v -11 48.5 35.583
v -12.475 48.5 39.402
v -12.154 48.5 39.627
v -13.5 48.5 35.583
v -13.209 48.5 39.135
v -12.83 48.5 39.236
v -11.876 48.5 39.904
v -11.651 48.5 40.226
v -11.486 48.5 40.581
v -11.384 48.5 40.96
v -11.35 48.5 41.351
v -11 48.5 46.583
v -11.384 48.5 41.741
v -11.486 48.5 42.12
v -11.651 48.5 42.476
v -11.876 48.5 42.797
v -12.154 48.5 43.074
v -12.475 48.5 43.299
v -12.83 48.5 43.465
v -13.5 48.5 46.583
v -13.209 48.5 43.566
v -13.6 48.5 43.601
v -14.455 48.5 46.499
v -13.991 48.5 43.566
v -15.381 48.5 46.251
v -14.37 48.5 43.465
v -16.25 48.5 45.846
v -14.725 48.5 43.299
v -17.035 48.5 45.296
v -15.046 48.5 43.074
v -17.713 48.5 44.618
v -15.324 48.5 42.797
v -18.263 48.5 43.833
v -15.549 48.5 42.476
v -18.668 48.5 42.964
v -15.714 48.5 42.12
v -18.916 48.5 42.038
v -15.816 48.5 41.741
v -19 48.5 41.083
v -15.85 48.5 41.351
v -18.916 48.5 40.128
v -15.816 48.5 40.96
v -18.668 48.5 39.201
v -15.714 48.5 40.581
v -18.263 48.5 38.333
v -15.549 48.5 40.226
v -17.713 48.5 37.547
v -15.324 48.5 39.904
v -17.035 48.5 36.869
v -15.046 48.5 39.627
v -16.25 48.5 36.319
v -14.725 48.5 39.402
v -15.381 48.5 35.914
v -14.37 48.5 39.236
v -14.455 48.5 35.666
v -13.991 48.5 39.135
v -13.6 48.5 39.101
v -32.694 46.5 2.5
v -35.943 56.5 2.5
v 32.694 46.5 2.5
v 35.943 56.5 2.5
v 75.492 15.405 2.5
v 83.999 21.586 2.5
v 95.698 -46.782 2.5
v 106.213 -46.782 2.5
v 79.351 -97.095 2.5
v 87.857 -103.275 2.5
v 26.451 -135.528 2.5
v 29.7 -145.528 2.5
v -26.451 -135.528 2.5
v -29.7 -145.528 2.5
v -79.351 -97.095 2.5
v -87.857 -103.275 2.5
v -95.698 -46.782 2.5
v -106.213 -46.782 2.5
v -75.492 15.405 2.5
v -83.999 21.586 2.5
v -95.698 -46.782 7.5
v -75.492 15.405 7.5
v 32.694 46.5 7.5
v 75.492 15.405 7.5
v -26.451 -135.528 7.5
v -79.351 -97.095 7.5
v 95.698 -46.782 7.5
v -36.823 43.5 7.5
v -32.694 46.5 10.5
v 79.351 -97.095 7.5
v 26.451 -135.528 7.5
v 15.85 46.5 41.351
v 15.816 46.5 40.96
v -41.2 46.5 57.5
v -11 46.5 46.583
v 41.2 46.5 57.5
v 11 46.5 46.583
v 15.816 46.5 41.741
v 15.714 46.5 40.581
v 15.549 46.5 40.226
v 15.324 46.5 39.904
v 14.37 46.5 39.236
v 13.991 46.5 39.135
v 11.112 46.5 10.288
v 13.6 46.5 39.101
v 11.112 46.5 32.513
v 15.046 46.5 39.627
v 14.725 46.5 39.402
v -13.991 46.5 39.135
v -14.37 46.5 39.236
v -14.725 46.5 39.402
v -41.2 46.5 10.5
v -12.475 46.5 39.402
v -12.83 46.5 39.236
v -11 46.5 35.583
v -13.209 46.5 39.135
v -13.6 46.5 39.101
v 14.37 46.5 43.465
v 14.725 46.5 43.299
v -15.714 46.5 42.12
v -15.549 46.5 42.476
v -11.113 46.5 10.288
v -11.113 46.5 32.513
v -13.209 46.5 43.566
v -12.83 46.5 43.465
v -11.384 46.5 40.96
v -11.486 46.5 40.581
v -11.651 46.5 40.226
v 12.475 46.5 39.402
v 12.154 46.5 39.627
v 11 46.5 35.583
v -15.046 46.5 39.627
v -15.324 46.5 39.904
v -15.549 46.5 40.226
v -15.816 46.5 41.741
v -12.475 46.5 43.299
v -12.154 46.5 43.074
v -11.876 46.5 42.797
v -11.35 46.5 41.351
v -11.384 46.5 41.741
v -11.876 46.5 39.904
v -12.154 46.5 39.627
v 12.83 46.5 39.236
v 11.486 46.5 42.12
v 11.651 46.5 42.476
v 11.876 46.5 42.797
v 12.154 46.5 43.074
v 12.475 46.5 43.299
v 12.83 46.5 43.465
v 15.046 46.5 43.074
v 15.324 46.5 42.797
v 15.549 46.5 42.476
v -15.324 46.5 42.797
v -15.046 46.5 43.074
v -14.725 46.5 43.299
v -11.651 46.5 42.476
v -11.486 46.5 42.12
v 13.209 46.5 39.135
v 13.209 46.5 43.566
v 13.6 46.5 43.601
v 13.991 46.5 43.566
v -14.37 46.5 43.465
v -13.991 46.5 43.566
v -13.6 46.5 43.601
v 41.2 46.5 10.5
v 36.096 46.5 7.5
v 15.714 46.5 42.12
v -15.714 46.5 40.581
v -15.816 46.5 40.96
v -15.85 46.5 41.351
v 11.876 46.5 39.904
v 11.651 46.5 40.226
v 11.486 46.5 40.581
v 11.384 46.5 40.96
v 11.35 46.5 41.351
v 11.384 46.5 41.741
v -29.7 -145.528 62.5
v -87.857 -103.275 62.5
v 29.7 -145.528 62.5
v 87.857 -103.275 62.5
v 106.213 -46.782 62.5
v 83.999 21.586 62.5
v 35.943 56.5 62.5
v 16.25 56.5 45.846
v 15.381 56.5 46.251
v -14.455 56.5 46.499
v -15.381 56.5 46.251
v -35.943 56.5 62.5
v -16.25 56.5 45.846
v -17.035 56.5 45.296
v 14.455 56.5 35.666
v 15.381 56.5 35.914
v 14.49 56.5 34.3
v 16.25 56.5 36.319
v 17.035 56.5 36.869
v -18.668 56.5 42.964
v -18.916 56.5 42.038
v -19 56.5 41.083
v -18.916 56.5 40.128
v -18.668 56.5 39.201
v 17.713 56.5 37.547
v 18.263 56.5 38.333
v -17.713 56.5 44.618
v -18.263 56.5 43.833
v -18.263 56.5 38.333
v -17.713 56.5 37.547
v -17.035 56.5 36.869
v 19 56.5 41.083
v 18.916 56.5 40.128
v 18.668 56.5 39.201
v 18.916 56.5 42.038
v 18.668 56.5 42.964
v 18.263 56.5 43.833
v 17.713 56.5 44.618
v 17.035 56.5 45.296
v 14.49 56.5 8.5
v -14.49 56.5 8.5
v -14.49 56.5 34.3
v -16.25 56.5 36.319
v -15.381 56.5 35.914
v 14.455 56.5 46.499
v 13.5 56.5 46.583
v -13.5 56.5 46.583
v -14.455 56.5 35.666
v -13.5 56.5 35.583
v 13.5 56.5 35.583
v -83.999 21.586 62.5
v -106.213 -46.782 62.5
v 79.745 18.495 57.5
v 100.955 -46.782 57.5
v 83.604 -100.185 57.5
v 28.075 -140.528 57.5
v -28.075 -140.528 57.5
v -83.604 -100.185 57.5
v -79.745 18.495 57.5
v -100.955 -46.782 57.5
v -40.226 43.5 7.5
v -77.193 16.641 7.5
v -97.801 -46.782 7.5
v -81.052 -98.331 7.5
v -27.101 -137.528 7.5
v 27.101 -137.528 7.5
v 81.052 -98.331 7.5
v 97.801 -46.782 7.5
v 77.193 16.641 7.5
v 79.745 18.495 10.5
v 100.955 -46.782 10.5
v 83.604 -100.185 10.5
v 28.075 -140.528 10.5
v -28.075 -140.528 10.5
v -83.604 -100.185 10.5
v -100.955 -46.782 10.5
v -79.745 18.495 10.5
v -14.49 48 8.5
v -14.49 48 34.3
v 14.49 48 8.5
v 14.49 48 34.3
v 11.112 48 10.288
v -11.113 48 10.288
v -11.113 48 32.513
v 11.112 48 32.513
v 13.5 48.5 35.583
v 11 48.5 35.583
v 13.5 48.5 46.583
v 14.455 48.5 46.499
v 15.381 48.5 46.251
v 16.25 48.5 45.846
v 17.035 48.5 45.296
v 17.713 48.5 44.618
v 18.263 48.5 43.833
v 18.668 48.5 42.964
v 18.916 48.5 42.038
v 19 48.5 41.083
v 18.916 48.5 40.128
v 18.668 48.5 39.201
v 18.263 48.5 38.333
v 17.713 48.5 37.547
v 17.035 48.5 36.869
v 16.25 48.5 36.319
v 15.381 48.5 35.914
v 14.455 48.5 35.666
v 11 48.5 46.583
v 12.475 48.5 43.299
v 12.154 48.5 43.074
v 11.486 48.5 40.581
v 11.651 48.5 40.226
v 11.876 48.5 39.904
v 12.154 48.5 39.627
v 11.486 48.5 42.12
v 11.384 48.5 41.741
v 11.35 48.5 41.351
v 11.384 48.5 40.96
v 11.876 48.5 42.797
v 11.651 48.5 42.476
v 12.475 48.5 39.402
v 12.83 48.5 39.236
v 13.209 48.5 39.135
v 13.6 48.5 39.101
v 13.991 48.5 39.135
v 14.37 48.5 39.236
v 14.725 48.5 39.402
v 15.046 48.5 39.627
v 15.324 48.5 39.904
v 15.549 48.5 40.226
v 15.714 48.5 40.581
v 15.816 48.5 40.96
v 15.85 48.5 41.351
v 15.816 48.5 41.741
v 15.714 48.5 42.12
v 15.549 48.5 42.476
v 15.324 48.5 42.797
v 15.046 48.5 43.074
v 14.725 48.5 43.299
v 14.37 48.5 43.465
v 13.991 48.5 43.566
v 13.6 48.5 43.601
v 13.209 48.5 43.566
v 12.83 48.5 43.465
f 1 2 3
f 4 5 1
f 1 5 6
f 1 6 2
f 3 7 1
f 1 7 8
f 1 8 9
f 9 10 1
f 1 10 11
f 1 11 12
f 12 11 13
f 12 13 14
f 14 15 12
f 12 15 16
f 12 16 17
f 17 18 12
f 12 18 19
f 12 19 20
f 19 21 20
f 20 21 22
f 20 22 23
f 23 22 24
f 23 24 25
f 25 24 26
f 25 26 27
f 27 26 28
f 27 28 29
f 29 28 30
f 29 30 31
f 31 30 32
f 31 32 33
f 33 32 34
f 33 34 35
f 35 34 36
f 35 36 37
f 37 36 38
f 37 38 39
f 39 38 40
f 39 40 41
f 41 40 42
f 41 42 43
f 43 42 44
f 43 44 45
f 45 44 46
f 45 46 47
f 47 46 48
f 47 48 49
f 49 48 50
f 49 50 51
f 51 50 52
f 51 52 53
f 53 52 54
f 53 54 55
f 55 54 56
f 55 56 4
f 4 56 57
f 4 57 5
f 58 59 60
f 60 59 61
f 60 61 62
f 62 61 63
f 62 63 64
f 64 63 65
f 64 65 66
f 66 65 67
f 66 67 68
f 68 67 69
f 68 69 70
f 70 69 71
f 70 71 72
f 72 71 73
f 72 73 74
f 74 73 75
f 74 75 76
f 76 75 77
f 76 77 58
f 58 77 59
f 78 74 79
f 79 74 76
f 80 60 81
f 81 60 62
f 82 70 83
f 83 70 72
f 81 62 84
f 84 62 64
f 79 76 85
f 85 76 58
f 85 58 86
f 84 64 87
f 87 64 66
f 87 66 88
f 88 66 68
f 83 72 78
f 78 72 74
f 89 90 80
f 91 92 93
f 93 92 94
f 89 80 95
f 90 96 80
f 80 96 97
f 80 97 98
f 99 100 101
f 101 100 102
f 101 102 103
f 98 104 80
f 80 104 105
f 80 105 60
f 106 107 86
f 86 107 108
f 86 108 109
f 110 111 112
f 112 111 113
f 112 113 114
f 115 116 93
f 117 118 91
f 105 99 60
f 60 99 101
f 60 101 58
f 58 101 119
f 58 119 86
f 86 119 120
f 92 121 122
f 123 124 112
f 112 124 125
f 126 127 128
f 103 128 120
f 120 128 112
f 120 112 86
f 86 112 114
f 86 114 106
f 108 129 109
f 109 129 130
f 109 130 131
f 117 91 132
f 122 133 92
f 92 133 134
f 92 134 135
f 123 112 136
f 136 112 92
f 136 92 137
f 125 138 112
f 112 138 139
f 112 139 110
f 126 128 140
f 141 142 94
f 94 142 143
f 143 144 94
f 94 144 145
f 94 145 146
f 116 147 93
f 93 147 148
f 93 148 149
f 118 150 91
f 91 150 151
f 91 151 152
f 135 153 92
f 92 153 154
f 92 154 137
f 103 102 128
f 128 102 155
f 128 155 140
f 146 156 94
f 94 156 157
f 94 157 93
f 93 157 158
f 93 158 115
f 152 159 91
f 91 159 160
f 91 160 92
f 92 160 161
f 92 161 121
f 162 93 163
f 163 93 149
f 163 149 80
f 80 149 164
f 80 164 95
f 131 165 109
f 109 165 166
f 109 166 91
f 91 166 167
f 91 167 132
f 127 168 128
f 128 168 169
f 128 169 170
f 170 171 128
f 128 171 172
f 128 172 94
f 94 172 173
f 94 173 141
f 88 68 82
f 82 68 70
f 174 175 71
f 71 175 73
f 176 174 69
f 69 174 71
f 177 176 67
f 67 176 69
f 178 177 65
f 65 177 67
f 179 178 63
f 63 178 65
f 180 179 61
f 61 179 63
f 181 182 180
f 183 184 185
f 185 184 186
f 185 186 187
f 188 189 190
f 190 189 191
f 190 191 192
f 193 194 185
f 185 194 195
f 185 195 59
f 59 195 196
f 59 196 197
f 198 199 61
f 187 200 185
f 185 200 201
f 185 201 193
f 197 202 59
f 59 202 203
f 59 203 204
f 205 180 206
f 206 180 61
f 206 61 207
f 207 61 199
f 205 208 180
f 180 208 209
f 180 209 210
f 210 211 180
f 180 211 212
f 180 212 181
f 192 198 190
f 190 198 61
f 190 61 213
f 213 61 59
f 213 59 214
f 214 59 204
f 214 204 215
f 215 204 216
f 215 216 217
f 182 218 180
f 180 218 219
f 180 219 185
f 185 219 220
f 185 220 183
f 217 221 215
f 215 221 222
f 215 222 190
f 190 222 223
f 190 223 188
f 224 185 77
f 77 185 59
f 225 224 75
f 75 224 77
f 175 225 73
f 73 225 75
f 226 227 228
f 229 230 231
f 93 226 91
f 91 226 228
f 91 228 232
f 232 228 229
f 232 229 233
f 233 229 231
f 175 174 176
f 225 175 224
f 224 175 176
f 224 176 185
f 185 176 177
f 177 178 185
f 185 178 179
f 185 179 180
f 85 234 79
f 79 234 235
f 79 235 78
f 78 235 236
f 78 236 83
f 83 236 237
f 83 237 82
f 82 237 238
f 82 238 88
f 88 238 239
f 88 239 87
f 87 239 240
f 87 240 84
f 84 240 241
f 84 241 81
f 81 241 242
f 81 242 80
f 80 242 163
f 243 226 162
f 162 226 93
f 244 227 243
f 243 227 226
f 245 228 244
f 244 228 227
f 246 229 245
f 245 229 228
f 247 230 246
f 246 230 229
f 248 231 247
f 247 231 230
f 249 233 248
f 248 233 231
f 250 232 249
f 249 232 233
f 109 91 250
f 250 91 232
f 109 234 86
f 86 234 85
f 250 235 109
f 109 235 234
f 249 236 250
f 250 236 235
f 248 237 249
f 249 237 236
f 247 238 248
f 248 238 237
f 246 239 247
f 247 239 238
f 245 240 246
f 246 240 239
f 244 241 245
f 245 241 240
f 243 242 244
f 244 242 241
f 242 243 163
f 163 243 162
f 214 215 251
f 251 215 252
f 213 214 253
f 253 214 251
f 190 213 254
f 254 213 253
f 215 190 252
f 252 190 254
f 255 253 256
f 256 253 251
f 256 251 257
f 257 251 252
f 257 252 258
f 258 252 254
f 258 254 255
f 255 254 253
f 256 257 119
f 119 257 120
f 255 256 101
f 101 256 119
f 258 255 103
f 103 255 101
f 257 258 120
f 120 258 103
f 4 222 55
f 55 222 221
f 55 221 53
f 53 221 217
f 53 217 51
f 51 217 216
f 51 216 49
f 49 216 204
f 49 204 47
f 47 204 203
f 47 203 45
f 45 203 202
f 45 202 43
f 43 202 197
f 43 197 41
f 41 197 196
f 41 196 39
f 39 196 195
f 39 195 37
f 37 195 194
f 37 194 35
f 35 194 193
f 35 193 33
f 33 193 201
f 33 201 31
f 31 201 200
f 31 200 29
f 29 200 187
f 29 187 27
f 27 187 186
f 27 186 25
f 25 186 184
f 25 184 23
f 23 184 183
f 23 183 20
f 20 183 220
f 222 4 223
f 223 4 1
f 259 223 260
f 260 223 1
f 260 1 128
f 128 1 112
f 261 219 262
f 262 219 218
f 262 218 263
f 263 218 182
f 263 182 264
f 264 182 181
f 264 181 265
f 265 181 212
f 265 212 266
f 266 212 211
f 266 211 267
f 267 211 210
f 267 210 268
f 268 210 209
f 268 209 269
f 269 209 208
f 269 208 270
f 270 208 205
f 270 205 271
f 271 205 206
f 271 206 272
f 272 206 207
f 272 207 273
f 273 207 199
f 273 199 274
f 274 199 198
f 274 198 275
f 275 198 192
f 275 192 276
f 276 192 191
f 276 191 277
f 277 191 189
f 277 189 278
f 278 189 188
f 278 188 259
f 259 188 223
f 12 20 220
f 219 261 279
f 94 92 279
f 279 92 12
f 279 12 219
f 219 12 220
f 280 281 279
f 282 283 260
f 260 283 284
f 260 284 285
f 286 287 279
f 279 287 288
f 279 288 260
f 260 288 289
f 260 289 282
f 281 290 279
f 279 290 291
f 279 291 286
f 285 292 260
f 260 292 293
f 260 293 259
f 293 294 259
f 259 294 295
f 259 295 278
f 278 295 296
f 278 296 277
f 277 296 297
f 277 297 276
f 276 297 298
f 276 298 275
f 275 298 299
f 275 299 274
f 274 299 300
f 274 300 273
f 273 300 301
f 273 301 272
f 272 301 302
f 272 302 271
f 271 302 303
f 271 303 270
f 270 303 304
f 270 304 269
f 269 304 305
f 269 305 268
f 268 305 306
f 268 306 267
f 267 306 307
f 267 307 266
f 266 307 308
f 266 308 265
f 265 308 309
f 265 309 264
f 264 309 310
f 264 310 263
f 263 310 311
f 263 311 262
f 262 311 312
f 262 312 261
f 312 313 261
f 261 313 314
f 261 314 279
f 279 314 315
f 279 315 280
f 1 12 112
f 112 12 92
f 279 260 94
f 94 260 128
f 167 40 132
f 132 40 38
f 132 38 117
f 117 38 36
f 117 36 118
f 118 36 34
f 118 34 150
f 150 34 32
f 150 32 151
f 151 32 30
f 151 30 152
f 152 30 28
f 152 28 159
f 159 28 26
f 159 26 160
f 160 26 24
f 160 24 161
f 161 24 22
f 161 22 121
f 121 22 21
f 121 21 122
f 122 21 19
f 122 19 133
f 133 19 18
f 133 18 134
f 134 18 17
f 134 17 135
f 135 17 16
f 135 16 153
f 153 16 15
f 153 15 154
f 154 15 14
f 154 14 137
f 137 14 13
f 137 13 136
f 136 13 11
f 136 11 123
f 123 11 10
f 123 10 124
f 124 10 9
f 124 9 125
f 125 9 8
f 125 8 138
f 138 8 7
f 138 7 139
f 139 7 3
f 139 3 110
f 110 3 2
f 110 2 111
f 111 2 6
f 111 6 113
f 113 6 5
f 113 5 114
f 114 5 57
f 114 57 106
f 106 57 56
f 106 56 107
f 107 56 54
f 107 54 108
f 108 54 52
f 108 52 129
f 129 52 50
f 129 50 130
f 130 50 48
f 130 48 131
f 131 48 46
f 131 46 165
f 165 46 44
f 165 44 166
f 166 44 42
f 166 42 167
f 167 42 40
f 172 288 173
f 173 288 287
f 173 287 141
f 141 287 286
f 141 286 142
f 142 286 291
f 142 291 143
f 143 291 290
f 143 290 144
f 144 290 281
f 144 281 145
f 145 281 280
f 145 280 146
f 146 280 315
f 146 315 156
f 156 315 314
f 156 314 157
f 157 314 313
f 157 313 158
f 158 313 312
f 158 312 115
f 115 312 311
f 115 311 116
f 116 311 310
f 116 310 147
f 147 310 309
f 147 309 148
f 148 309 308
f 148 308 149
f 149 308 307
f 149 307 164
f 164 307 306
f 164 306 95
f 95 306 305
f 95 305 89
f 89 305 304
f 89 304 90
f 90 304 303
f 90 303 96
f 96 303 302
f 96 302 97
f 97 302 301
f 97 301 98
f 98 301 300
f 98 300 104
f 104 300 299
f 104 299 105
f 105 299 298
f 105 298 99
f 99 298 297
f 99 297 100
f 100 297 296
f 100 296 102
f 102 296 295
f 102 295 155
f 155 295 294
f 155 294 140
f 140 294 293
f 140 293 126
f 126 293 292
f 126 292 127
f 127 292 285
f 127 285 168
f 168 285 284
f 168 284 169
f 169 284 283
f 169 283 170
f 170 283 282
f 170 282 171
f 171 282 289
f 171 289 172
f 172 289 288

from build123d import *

# Parameters (mm, degrees)
BOSS_EXTRUDE1_DEPTH      = 32.5
SKETCH4_R                = 1.05
BOSS_EXTRUDE2_DEPTH      = 2.5
SKETCH5_R                = 1.05
BOSS_EXTRUDE3_DEPTH      = 3
CUT_EXTRUDE1_DEPTH       = 57.494113711
SKETCH13_W               = 30.122
SKETCH13_H               = 38
BOSS_EXTRUDE7_DEPTH      = 2.5
BOSS_EXTRUDE4_DEPTH      = 5
BOSS_EXTRUDE6_DEPTH      = 5
CUT_EXTRUDE2_DEPTH       = 88.339560135
SKETCH14_W               = 15
SKETCH14_H               = 5
CUT_EXTRUDE3_DEPTH       = 78.191649756
SKETCH15_W               = 30.122
SKETCH15_H               = 34.5
SKETCH15_R               = 2.495
BOSS_EXTRUDE8_DEPTH      = 3
SKETCH17_R               = 13.75
CUT_EXTRUDE4_DEPTH       = 82.57236537
CUT_EXTRUDE6_DEPTH       = 78.191649756
CUT_EXTRUDE6_DEPTH_BACK  = 78.191649756
SKETCH19_W               = 15
SKETCH19_H               = 3
SKETCH21_R               = 2.25
CUT_EXTRUDE8_DEPTH       = 1.5
SKETCH20_R               = 10
CUT_EXTRUDE7_DEPTH       = 80.23730682
CIRPATTERN2_COUNT        = 5
CHAMFER1_SIZE2           = 2
CHAMFER1_SIZE            = 1.154700538
SKETCH22_R               = 1.575
CUT_EXTRUDE9_DEPTH       = 170.45894052
SKETCH23_R               = 2.6
CUT_EXTRUDE10_DEPTH      = 3
CIRPATTERN3_COUNT        = 5
BOSS_EXTRUDE9_DEPTH      = 55
CUT_EXTRUDE11_DEPTH      = 187.975043137
CUT_EXTRUDE11_DEPTH_BACK = 187.975043137
BOSS_EXTRUDE10_DEPTH     = 5
CUT_EXTRUDE12_DEPTH      = 50
CHAMFER2_SIZE            = 3
SKETCH30_W               = 28.98
SKETCH30_H               = 25.8
CUT_EXTRUDE15_DEPTH      = 8.5
CUT_EXTRUDE16_REACH      = 231.436
SKETCH33_W               = 22.225
SKETCH33_H               = 22.225
CUT_EXTRUDE14_DEPTH      = 8
CUT_EXTRUDE17_REACH      = 231.857
SKETCH34_R               = 2.25
SKETCH34_W               = 22
SKETCH34_H               = 11


with BuildPart() as part:
    # Sketch2 → Boss-Extrude1 (new body)
    with BuildSketch(Plane(origin=(0, 0, 0), x_dir=(1, 0, 0), z_dir=(0, 1, 0))):
        Polygon((15.061, 0), (15.061, 32), (12.561, 32), (12.561, 2.5), (-12.561, 2.5), (-12.561, 32), (-15.061, 32), (-15.061, 0), align=None)
    extrude(amount=BOSS_EXTRUDE1_DEPTH)

    # Sketch4 → Boss-Extrude2 (add)
    # profile 1 of 2: a face of its own
    with BuildSketch(Plane.XZ):
        Polygon((-7.561, -6), (-7.561, 0), (-15.061, 0), (-15.061, -32), (-12.561, -32), (-12.561, -10), align=None)
        with Locations(Location((-10.2499, -4.95, 0), (0, 0, 270))):
            Circle(SKETCH4_R, mode=Mode.SUBTRACT)
    # profile 2 of 2: a face of its own
    with BuildSketch(Plane.XZ):
        Polygon((12.561, -10), (7.561, -6), (7.561, 0), (15.061, 0), (15.061, -32), (12.561, -32), align=None)
        with Locations(Location((10.2499, -4.95, 0), (0, 0, 270))):
            Circle(SKETCH4_R, mode=Mode.SUBTRACT)
    extrude(amount=BOSS_EXTRUDE2_DEPTH)

    # Sketch5 → Boss-Extrude3 (add)
    with BuildSketch(Plane(origin=(0, 32.5, 0), x_dir=(1, 0, 0), z_dir=(0, 1, 0))):
        Polygon((-15.061, 32), (-10.2499, 32), (-6.25, 26), (6.25, 26), (10.2499, 32), (15.061, 32), (15.061, 0), (-15.061, 0), align=None)
        with Locations(Location((-10.2499, 8.7, 0), (0, 0, 270))):
            Circle(SKETCH5_R, mode=Mode.SUBTRACT)
        with Locations(Location((10.2499, 8.7, 0), (0, 0, 270))):
            Circle(SKETCH5_R, mode=Mode.SUBTRACT)
    extrude(amount=BOSS_EXTRUDE3_DEPTH)

    # Sketch6 → Cut-Extrude1 (cut, through all)
    with BuildSketch(Plane.ZY.offset(15.061)):
        Polygon((-12.5, 35.5), (-32, 2.5), (-32, 35.5), align=None)
    extrude(amount=-CUT_EXTRUDE1_DEPTH, mode=Mode.SUBTRACT)

    # Sketch13 → Boss-Extrude7 (add)
    with BuildSketch(Plane.XY):
        with Locations((0, 16.5)):
            Rectangle(SKETCH13_W, SKETCH13_H)
    extrude(amount=BOSS_EXTRUDE7_DEPTH)

    # Sketch8 → Boss-Extrude4 (add)
    with BuildSketch(Plane.XY.offset(2.5)):
        Polygon((0, -43.5), (-43.59255168, 16.5), (43.59255168, 16.5), align=None)
    extrude(amount=BOSS_EXTRUDE4_DEPTH)

    # Sketch9 → Boss-Extrude6 (add)
    with BuildSketch(Plane.XY.offset(2.5)):
        Polygon((43.59255168, 16.5), (65.38882752, 46.5), (-65.38882752, 46.5), (-43.59255168, 16.5), align=None)
    extrude(amount=BOSS_EXTRUDE6_DEPTH)

    # Sketch10 → Cut-Extrude2 (cut, through all)
    with BuildSketch(Plane(origin=(0, 0, 2.5), x_dir=(-1, 0, 0), z_dir=(0, 0, -1))):
        Polygon((-65.38882752, 46.5), (-54.092982836, 30.9526036), (-32.69382752, 46.5), align=None)
        Polygon((54.092982836, 30.9526036), (65.38882752, 46.5), (32.69382752, 46.5), align=None)
    extrude(amount=-CUT_EXTRUDE2_DEPTH, mode=Mode.SUBTRACT)

    # Sketch14 → Cut-Extrude3 (cut, through all)
    with BuildSketch(Plane(origin=(0, 0, -2.5), x_dir=(-1, 0, 0), z_dir=(0, 0, -1))):
        Polygon((-7.561, -2.5), (7.561, -2.5), (7.561, 0), (12.561, 0), (12.561, 7.783674653), (-12.561, 7.783674653), (-12.561, 0), (-7.561, 0), align=None)
        with Locations((0, 38)):
            Rectangle(SKETCH14_W, SKETCH14_H)
    extrude(amount=-CUT_EXTRUDE3_DEPTH, mode=Mode.SUBTRACT)

    # Sketch15 → Boss-Extrude8 (add)
    with BuildSketch(Plane.XZ.offset(2.5)):
        with Locations((0, -14.75)):
            Rectangle(SKETCH15_W, SKETCH15_H)
        with Locations(Location((-10.2499, -4.95, 0), (0, 0, 270))):
            Circle(SKETCH15_R, mode=Mode.SUBTRACT)
        with Locations(Location((10.340989886, -4.95, 0), (0, 0, 270))):
            Circle(SKETCH15_R, mode=Mode.SUBTRACT)
    extrude(amount=BOSS_EXTRUDE8_DEPTH)

    # Sketch17 → Cut-Extrude4 (cut, through all)
    with BuildSketch(Plane.XZ.offset(5.5)):
        with Locations((0, -37.5)):
            Circle(SKETCH17_R)
    extrude(amount=-CUT_EXTRUDE4_DEPTH, mode=Mode.SUBTRACT)

    # Sketch19 → Cut-Extrude6 (cut, two sides: drawn at the far end of the back side and taken through both)
    with BuildSketch(Plane(origin=(0, 0, -2.5), x_dir=(-1, 0, 0), z_dir=(0, 0, -1)).offset(-CUT_EXTRUDE6_DEPTH_BACK)):
        with Locations((0, 34)):
            Rectangle(SKETCH19_W, SKETCH19_H)
    extrude(amount=CUT_EXTRUDE6_DEPTH + CUT_EXTRUDE6_DEPTH_BACK, mode=Mode.SUBTRACT)

    # Sketch21 → Cut-Extrude8 (cut)
    with BuildSketch(Plane(origin=(0, 35.5, 0), x_dir=(1, 0, 0), z_dir=(0, 1, 0))):
        with Locations(Location((-10.2499, 8.7, 0), (0, 0, 270))):
            Circle(SKETCH21_R)
        with Locations(Location((10.2499, 8.7, 0), (0, 0, 270))):
            Circle(SKETCH21_R)
    extrude(amount=-CUT_EXTRUDE8_DEPTH, mode=Mode.SUBTRACT)

    # Sketch20 → Cut-Extrude7 (cut, through all)
    with BuildSketch(Plane(origin=(0, 0, 2.5), x_dir=(-1, 0, 0), z_dir=(0, 0, -1))):
        with Locations((0, -43.5)):
            Circle(SKETCH20_R)
    extrude(amount=-CUT_EXTRUDE7_DEPTH, mode=Mode.SUBTRACT)


with BuildPart() as cirpattern2_1:
    # CirPattern2: pattern copy
    add(part.part.rotate(Axis((0, -43.5, 0), (0, 0, 1)), 1 * 360 / CIRPATTERN2_COUNT))


with BuildPart() as cirpattern2_2:
    # CirPattern2: pattern copy
    add(part.part.rotate(Axis((0, -43.5, 0), (0, 0, 1)), 2 * 360 / CIRPATTERN2_COUNT))


with BuildPart() as cirpattern2_3:
    # CirPattern2: pattern copy
    add(part.part.rotate(Axis((0, -43.5, 0), (0, 0, 1)), 3 * 360 / CIRPATTERN2_COUNT))


with BuildPart() as cirpattern2_4:
    # CirPattern2: pattern copy
    add(part.part.rotate(Axis((0, -43.5, 0), (0, 0, 1)), 4 * 360 / CIRPATTERN2_COUNT))


with BuildPart() as cirpattern2_3_1:
    add(cirpattern2_3.part)

    # Combine1: union CirPattern2_2, CirPattern2_1, part, CirPattern2_4
    add(cirpattern2_2.part)
    add(cirpattern2_1.part)
    add(part.part)
    add(cirpattern2_4.part)

    # Chamfer1
    chamfer1_edges = [cirpattern2_3_1.edges().sort_by_distance(p)[0] for p in [
        (52.900672706, -116.311529494, 7.5),
        (0, -135.528479151, 7.5),
        (87.524284782, -71.938364024, 7.5),
        (24.099195344, -76.669696769, 7.5),
        (18.716949415, -82.125212305, 7.5),
        (17.429138494, -84.605946679, 7.5),
        (17.694160593, -89.223972346, 7.5),
        (30.143787645, -84.989364329, 7.5),
        (38.018285526, -74.457631238, 7.5),
        (33.708178455, -72.778531832, 7.5),
        (30.950904404, -73.23672372, 7.5),
        (40.955192726, -112.629748942, 7.5),
        (49.373961193, -111.457427527, 7.5),
        (53.090447641, -103.812970158, 7.5),
        (44.671679174, -104.985291572, 7.5),
        (-5.877852523, -51.590169944, 7.5),
        (-52.900672706, -116.311529494, 7.5),
        (-33.708178455, -72.778531832, 7.5),
        (-30.950904404, -73.23672372, 7.5),
        (-24.099195344, -76.669696769, 7.5),
        (-18.716949415, -82.125212305, 7.5),
        (-17.429138494, -84.605946679, 7.5),
        (-17.694160593, -89.223972346, 7.5),
        (-30.143787645, -84.989364329, 7.5),
        (-38.018285526, -74.457631238, 7.5),
        (-44.671679174, -104.985291572, 7.5),
        (-40.955192726, -112.629748942, 7.5),
        (-49.373961193, -111.457427527, 7.5),
        (-53.090447641, -103.812970158, 7.5),
        (54.092982836, 30.9526036, 7.5),
        (-54.092982836, 30.9526036, 7.5),
        (-87.524284782, -71.938364024, 7.5),
        (-38.261938478, -20.489181134, 7.5),
        (-37.845660319, -23.253093668, 7.5),
        (-38.993317168, -30.830303231, 7.5),
        (-42.518615308, -37.634970307, 7.5),
        (-44.479978439, -39.626340355, 7.5),
        (-48.953878175, -40.801337773, 7.5),
        (-48.773672959, -27.652472998, 7.5),
        (-41.190753242, -16.90889597, 7.5),
        (-72.280295238, -20.014708428, 7.5),
        (-78.402148761, -25.911564322, 7.5),
        (-79.888747369, -17.542572473, 7.5),
        (-73.766893846, -11.645716578, 7.5),
        (10.061, 0, 7.5),
        (7.561, -1.25, 7.5),
        (0, -2.5, 7.5),
        (-7.561, -1.25, 7.5),
        (-10.061, 0, 7.5),
        (-12.561, 3.891837327, 7.5),
        (0, 7.783674653, 7.5),
        (12.561, 3.891837327, 7.5),
        (0, 32.5, 7.5),
        (-7.5, 36.5, 7.5),
        (0, 40.5, 7.5),
        (7.5, 36.5, 7.5),
        (44.479978439, -39.626340355, 7.5),
        (42.518615308, -37.634970307, 7.5),
        (38.993317168, -30.830303231, 7.5),
        (37.845660319, -23.253093668, 7.5),
        (38.261938478, -20.489181134, 7.5),
        (41.190753242, -16.90889597, 7.5),
        (48.773672959, -27.652472998, 7.5),
        (48.953878175, -40.801337773, 7.5),
        (72.280295238, -20.014708428, 7.5),
        (73.766893846, -11.645716578, 7.5),
        (79.888747369, -17.542572473, 7.5),
        (78.402148761, -25.911564322, 7.5),
        (-85.595086467, -15.688470506, 7.5),
        (0, 46.5, 7.5),
        (85.595086467, -15.688470506, 7.5),
    ]]
    chamfer(chamfer1_edges, length=CHAMFER1_SIZE, length2=CHAMFER1_SIZE2)

    # Sketch22 → Cut-Extrude9 (cut, through all)
    with BuildSketch(Plane(origin=(0, 0, 2.5), x_dir=(-1, 0, 0), z_dir=(0, 0, -1))):
        with Locations((0, -123.5)):
            Circle(SKETCH22_R)
    cut_extrude9 = extrude(amount=-CUT_EXTRUDE9_DEPTH, mode=Mode.SUBTRACT)

    # Sketch23 → Cut-Extrude10 (cut)
    with BuildSketch(Plane(origin=(0, 0, 2.5), x_dir=(-1, 0, 0), z_dir=(0, 0, -1))):
        with Locations((0, -123.5)):
            Circle(SKETCH23_R)
    cut_extrude10 = extrude(amount=-CUT_EXTRUDE10_DEPTH, mode=Mode.SUBTRACT)

    # CirPattern3: Cut-Extrude9, Cut-Extrude10 ×5 about axis
    cirpattern3_axis = Axis((0, -43.5, 0), (0, 0, 1))
    add([cut_extrude9.rotate(cirpattern3_axis, i * 360 / CIRPATTERN3_COUNT) for i in range(1, CIRPATTERN3_COUNT)], mode=Mode.SUBTRACT)
    add([cut_extrude10.rotate(cirpattern3_axis, i * 360 / CIRPATTERN3_COUNT) for i in range(1, CIRPATTERN3_COUNT)], mode=Mode.SUBTRACT)

    # Sketch24 → Boss-Extrude9 (add)
    with BuildSketch(Plane(origin=(0, 0, 2.5), x_dir=(-1, 0, 0), z_dir=(0, 0, -1))):
        Polygon((87.857042865, -103.274919724), (106.212657024, -46.782148212), (83.998646235, 21.585547087), (35.943024483, 56.5), (-35.943024483, 56.5), (-83.998646235, 21.585547087), (-106.212657024, -46.782148212), (-87.857042865, -103.274919724), (-29.700007593, -145.528479151), (29.700007593, -145.528479151), align=None)
        Polygon((-32.69382752, 46.5), (32.69382752, 46.5), (75.492138152, 15.4052072), (95.698034782, -46.782148212), (79.350534782, -97.094579836), (26.450810631, -135.528479151), (-26.450810631, -135.528479151), (-79.350534782, -97.094579836), (-95.698034782, -46.782148212), (-75.492138152, 15.4052072), align=None, mode=Mode.SUBTRACT)
    extrude(amount=-BOSS_EXTRUDE9_DEPTH)

    # Sketch25 → Cut-Extrude11 (cut, two sides: drawn at the far end of the back side and taken through both)
    with BuildSketch(Plane.XY.offset(7.5).offset(-CUT_EXTRUDE11_DEPTH_BACK)):
        Polygon((-32.69382752, 46.5), (32.69382752, 46.5), (75.492138152, 15.4052072), (95.698034782, -46.782148212), (79.350534782, -97.094579836), (26.450810631, -135.528479151), (-26.450810631, -135.528479151), (-79.350534782, -97.094579836), (-95.698034782, -46.782148212), (-75.492138152, 15.4052072), align=None)
    extrude(amount=CUT_EXTRUDE11_DEPTH + CUT_EXTRUDE11_DEPTH_BACK, mode=Mode.SUBTRACT)

    # Sketch26 → Boss-Extrude10 (add)
    with BuildSketch(Plane.XY.offset(57.5)):
        Polygon((-83.998646235, 21.585547087), (-35.943024483, 56.5), (35.943024483, 56.5), (83.998646235, 21.585547087), (106.212657024, -46.782148212), (87.857042865, -103.274919724), (29.700007593, -145.528479151), (-29.700007593, -145.528479151), (-87.857042865, -103.274919724), (-106.212657024, -46.782148212), align=None)
    extrude(amount=BOSS_EXTRUDE10_DEPTH)

    # Sketch29 → Cut-Extrude12 (cut)
    with BuildSketch(Plane(origin=(0, 0, 57.5), x_dir=(-1, 0, 0), z_dir=(0, 0, -1))):
        Polygon((-41.200335604, 46.5), (41.200335604, 46.5), (79.745392193, 18.495377143), (100.955345903, -46.782148212), (83.603788823, -100.18474978), (28.075409112, -140.528479151), (-28.075409112, -140.528479151), (-83.603788823, -100.18474978), (-100.955345903, -46.782148212), (-79.745392193, 18.495377143), align=None)
    extrude(amount=CUT_EXTRUDE12_DEPTH, mode=Mode.SUBTRACT)

    # Chamfer2
    chamfer2_edges = [cirpattern2_3_1.edges().sort_by_distance(p)[0] for p in [
        (-36.947081562, 46.5, 7.5),
        (60.472863899, 32.497688572, 7.5),
        (90.350369048, -14.143385534, 7.5),
        (92.279567363, -73.483448996, 7.5),
        (55.839598968, -120.356614466, 7.5),
        (0, -140.528479151, 7.5),
        (-55.839598968, -120.356614466, 7.5),
        (-92.279567363, -73.483448996, 7.5),
        (-90.350369048, -14.143385534, 7.5),
        (-60.472863899, 32.497688572, 7.5),
    ]]
    chamfer(chamfer2_edges, length=CHAMFER2_SIZE)

    # Sketch30 → Cut-Extrude15 (cut)
    with BuildSketch(Plane(origin=(0, 56.5, 0), x_dir=(1, 0, 0), z_dir=(0, 1, 0))):
        with Locations((0, -21.4)):
            Rectangle(SKETCH30_W, SKETCH30_H)
    extrude(amount=-CUT_EXTRUDE15_DEPTH, mode=Mode.SUBTRACT)

    # Sketch33 → Cut-Extrude16 (cut, up to next)
    with BuildSketch(Plane(origin=(0, 48, 0), x_dir=(1, 0, 0), z_dir=(0, 1, 0)), mode=Mode.PRIVATE) as cut_extrude16_sk1:
        with Locations((0, -21.4)):
            Rectangle(SKETCH33_W, SKETCH33_H)
    cut_extrude16_tool1 = extrude(cut_extrude16_sk1.sketch, amount=-CUT_EXTRUDE16_REACH, mode=Mode.PRIVATE) & cirpattern2_3_1.part
    add(cut_extrude16_tool1.solids().sort_by_distance((0, 48, 21.4))[0], mode=Mode.SUBTRACT)

    # Sketch32 → Cut-Extrude14 (cut)
    with BuildSketch(Plane(origin=(0, 56.5, 0), x_dir=(1, 0, 0), z_dir=(0, 1, 0))):
        with BuildLine():
            Line((-13.5, -35.582576287), (13.5, -35.582576287))
            ThreePointArc((13.5, -35.582576287), (19, -41.082576287), (13.5, -46.582576287))
            Line((13.5, -46.582576287), (-13.5, -46.582576287))
            ThreePointArc((-13.5, -46.582576287), (-19, -41.082576287), (-13.5, -35.582576287))
        make_face()
    extrude(amount=-CUT_EXTRUDE14_DEPTH, mode=Mode.SUBTRACT)

    # Sketch34 → Cut-Extrude17 (cut, up to next)
    with BuildSketch(Plane(origin=(0, 48.5, 0), x_dir=(1, 0, 0), z_dir=(0, 1, 0)), mode=Mode.PRIVATE) as cut_extrude17_sk1:
        with Locations(Location((-13.6, -41.350525767, 0), (0, 0, 180))):
            Circle(SKETCH34_R)
    cut_extrude17_tool1 = extrude(cut_extrude17_sk1.sketch, amount=-CUT_EXTRUDE17_REACH, mode=Mode.PRIVATE) & cirpattern2_3_1.part
    # Sketch34 → Cut-Extrude17 (cut, up to next)
    with BuildSketch(Plane(origin=(0, 48.5, 0), x_dir=(1, 0, 0), z_dir=(0, 1, 0)), mode=Mode.PRIVATE) as cut_extrude17_sk2:
        with Locations(Location((13.6, -41.350525767, 0), (0, 0, 180))):
            Circle(SKETCH34_R)
    cut_extrude17_tool2 = extrude(cut_extrude17_sk2.sketch, amount=-CUT_EXTRUDE17_REACH, mode=Mode.PRIVATE) & cirpattern2_3_1.part
    # Sketch34 → Cut-Extrude17 (cut, up to next)
    with BuildSketch(Plane(origin=(0, 48.5, 0), x_dir=(1, 0, 0), z_dir=(0, 1, 0)), mode=Mode.PRIVATE) as cut_extrude17_sk3:
        with Locations((0, -41.082576287)):
            Rectangle(SKETCH34_W, SKETCH34_H)
    cut_extrude17_tool3 = extrude(cut_extrude17_sk3.sketch, amount=-CUT_EXTRUDE17_REACH, mode=Mode.PRIVATE) & cirpattern2_3_1.part
    add(cut_extrude17_tool1.solids().sort_by_distance((-13.6, 48.5, 41.350526))[0], mode=Mode.SUBTRACT)
    add(cut_extrude17_tool2.solids().sort_by_distance((13.6, 48.5, 41.350526))[0], mode=Mode.SUBTRACT)
    add(cut_extrude17_tool3.solids().sort_by_distance((0, 48.5, 41.082576))[0], mode=Mode.SUBTRACT)


solid = cirpattern2_3_1.part
